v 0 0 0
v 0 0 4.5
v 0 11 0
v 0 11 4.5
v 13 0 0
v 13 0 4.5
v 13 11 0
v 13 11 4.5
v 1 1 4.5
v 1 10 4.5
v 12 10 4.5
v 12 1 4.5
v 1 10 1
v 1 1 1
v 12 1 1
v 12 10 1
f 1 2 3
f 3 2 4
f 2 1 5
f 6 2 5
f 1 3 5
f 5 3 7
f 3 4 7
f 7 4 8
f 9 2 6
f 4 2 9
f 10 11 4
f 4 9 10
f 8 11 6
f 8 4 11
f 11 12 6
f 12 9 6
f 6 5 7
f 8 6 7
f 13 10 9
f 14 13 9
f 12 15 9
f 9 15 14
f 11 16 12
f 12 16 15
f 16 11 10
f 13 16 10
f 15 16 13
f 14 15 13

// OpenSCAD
difference() {
  cube([13,11,4.5]);
  translate([1,1,1]) {
    cube([11,9,100]);
  }
}
